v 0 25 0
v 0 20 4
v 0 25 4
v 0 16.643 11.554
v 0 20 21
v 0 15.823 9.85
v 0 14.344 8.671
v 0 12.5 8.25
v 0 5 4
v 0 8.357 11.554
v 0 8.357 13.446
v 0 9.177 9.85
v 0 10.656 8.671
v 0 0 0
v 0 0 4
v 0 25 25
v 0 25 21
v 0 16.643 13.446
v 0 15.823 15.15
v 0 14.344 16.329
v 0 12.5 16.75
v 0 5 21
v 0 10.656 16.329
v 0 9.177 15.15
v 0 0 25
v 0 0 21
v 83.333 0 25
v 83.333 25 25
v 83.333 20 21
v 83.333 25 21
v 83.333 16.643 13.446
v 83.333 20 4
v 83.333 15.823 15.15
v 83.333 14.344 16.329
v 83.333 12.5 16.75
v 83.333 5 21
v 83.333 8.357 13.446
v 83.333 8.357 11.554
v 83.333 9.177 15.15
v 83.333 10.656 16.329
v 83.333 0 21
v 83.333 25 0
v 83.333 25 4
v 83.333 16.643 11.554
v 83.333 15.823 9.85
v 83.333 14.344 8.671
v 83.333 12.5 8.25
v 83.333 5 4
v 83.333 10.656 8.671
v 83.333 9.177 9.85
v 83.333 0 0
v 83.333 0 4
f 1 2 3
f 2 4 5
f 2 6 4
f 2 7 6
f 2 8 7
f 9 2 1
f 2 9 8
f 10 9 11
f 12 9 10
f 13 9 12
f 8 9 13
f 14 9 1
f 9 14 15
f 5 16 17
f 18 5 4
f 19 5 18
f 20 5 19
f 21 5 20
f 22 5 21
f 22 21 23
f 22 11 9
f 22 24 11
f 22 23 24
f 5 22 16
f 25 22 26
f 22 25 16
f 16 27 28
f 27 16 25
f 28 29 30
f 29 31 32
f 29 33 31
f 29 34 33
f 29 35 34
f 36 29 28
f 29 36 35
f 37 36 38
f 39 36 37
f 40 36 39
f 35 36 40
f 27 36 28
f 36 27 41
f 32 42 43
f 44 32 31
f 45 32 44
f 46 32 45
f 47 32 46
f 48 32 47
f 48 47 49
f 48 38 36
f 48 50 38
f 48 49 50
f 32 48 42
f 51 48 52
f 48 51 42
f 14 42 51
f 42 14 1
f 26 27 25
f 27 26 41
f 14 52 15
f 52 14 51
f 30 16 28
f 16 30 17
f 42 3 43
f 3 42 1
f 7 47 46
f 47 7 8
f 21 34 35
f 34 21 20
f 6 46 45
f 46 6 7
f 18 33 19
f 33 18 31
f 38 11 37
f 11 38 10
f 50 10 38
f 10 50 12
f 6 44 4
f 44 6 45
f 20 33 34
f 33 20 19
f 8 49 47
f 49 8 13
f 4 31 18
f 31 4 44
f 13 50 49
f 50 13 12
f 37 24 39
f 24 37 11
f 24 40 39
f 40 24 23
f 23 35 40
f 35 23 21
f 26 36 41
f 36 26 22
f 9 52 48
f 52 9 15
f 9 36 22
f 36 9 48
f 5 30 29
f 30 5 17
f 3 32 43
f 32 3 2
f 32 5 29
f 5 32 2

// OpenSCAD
difference(){
    cube([125*2/3,25,25]);
    translate([-1,12.5,12.5])rotate([0,90,0])cylinder(d=8.5,h=130); //d=8.3 was too tight.
    translate([-1,-1,4])cube([130*2/3,6,17]);
    translate([-1,20,4])cube([130*2/3,6,17]);
};
